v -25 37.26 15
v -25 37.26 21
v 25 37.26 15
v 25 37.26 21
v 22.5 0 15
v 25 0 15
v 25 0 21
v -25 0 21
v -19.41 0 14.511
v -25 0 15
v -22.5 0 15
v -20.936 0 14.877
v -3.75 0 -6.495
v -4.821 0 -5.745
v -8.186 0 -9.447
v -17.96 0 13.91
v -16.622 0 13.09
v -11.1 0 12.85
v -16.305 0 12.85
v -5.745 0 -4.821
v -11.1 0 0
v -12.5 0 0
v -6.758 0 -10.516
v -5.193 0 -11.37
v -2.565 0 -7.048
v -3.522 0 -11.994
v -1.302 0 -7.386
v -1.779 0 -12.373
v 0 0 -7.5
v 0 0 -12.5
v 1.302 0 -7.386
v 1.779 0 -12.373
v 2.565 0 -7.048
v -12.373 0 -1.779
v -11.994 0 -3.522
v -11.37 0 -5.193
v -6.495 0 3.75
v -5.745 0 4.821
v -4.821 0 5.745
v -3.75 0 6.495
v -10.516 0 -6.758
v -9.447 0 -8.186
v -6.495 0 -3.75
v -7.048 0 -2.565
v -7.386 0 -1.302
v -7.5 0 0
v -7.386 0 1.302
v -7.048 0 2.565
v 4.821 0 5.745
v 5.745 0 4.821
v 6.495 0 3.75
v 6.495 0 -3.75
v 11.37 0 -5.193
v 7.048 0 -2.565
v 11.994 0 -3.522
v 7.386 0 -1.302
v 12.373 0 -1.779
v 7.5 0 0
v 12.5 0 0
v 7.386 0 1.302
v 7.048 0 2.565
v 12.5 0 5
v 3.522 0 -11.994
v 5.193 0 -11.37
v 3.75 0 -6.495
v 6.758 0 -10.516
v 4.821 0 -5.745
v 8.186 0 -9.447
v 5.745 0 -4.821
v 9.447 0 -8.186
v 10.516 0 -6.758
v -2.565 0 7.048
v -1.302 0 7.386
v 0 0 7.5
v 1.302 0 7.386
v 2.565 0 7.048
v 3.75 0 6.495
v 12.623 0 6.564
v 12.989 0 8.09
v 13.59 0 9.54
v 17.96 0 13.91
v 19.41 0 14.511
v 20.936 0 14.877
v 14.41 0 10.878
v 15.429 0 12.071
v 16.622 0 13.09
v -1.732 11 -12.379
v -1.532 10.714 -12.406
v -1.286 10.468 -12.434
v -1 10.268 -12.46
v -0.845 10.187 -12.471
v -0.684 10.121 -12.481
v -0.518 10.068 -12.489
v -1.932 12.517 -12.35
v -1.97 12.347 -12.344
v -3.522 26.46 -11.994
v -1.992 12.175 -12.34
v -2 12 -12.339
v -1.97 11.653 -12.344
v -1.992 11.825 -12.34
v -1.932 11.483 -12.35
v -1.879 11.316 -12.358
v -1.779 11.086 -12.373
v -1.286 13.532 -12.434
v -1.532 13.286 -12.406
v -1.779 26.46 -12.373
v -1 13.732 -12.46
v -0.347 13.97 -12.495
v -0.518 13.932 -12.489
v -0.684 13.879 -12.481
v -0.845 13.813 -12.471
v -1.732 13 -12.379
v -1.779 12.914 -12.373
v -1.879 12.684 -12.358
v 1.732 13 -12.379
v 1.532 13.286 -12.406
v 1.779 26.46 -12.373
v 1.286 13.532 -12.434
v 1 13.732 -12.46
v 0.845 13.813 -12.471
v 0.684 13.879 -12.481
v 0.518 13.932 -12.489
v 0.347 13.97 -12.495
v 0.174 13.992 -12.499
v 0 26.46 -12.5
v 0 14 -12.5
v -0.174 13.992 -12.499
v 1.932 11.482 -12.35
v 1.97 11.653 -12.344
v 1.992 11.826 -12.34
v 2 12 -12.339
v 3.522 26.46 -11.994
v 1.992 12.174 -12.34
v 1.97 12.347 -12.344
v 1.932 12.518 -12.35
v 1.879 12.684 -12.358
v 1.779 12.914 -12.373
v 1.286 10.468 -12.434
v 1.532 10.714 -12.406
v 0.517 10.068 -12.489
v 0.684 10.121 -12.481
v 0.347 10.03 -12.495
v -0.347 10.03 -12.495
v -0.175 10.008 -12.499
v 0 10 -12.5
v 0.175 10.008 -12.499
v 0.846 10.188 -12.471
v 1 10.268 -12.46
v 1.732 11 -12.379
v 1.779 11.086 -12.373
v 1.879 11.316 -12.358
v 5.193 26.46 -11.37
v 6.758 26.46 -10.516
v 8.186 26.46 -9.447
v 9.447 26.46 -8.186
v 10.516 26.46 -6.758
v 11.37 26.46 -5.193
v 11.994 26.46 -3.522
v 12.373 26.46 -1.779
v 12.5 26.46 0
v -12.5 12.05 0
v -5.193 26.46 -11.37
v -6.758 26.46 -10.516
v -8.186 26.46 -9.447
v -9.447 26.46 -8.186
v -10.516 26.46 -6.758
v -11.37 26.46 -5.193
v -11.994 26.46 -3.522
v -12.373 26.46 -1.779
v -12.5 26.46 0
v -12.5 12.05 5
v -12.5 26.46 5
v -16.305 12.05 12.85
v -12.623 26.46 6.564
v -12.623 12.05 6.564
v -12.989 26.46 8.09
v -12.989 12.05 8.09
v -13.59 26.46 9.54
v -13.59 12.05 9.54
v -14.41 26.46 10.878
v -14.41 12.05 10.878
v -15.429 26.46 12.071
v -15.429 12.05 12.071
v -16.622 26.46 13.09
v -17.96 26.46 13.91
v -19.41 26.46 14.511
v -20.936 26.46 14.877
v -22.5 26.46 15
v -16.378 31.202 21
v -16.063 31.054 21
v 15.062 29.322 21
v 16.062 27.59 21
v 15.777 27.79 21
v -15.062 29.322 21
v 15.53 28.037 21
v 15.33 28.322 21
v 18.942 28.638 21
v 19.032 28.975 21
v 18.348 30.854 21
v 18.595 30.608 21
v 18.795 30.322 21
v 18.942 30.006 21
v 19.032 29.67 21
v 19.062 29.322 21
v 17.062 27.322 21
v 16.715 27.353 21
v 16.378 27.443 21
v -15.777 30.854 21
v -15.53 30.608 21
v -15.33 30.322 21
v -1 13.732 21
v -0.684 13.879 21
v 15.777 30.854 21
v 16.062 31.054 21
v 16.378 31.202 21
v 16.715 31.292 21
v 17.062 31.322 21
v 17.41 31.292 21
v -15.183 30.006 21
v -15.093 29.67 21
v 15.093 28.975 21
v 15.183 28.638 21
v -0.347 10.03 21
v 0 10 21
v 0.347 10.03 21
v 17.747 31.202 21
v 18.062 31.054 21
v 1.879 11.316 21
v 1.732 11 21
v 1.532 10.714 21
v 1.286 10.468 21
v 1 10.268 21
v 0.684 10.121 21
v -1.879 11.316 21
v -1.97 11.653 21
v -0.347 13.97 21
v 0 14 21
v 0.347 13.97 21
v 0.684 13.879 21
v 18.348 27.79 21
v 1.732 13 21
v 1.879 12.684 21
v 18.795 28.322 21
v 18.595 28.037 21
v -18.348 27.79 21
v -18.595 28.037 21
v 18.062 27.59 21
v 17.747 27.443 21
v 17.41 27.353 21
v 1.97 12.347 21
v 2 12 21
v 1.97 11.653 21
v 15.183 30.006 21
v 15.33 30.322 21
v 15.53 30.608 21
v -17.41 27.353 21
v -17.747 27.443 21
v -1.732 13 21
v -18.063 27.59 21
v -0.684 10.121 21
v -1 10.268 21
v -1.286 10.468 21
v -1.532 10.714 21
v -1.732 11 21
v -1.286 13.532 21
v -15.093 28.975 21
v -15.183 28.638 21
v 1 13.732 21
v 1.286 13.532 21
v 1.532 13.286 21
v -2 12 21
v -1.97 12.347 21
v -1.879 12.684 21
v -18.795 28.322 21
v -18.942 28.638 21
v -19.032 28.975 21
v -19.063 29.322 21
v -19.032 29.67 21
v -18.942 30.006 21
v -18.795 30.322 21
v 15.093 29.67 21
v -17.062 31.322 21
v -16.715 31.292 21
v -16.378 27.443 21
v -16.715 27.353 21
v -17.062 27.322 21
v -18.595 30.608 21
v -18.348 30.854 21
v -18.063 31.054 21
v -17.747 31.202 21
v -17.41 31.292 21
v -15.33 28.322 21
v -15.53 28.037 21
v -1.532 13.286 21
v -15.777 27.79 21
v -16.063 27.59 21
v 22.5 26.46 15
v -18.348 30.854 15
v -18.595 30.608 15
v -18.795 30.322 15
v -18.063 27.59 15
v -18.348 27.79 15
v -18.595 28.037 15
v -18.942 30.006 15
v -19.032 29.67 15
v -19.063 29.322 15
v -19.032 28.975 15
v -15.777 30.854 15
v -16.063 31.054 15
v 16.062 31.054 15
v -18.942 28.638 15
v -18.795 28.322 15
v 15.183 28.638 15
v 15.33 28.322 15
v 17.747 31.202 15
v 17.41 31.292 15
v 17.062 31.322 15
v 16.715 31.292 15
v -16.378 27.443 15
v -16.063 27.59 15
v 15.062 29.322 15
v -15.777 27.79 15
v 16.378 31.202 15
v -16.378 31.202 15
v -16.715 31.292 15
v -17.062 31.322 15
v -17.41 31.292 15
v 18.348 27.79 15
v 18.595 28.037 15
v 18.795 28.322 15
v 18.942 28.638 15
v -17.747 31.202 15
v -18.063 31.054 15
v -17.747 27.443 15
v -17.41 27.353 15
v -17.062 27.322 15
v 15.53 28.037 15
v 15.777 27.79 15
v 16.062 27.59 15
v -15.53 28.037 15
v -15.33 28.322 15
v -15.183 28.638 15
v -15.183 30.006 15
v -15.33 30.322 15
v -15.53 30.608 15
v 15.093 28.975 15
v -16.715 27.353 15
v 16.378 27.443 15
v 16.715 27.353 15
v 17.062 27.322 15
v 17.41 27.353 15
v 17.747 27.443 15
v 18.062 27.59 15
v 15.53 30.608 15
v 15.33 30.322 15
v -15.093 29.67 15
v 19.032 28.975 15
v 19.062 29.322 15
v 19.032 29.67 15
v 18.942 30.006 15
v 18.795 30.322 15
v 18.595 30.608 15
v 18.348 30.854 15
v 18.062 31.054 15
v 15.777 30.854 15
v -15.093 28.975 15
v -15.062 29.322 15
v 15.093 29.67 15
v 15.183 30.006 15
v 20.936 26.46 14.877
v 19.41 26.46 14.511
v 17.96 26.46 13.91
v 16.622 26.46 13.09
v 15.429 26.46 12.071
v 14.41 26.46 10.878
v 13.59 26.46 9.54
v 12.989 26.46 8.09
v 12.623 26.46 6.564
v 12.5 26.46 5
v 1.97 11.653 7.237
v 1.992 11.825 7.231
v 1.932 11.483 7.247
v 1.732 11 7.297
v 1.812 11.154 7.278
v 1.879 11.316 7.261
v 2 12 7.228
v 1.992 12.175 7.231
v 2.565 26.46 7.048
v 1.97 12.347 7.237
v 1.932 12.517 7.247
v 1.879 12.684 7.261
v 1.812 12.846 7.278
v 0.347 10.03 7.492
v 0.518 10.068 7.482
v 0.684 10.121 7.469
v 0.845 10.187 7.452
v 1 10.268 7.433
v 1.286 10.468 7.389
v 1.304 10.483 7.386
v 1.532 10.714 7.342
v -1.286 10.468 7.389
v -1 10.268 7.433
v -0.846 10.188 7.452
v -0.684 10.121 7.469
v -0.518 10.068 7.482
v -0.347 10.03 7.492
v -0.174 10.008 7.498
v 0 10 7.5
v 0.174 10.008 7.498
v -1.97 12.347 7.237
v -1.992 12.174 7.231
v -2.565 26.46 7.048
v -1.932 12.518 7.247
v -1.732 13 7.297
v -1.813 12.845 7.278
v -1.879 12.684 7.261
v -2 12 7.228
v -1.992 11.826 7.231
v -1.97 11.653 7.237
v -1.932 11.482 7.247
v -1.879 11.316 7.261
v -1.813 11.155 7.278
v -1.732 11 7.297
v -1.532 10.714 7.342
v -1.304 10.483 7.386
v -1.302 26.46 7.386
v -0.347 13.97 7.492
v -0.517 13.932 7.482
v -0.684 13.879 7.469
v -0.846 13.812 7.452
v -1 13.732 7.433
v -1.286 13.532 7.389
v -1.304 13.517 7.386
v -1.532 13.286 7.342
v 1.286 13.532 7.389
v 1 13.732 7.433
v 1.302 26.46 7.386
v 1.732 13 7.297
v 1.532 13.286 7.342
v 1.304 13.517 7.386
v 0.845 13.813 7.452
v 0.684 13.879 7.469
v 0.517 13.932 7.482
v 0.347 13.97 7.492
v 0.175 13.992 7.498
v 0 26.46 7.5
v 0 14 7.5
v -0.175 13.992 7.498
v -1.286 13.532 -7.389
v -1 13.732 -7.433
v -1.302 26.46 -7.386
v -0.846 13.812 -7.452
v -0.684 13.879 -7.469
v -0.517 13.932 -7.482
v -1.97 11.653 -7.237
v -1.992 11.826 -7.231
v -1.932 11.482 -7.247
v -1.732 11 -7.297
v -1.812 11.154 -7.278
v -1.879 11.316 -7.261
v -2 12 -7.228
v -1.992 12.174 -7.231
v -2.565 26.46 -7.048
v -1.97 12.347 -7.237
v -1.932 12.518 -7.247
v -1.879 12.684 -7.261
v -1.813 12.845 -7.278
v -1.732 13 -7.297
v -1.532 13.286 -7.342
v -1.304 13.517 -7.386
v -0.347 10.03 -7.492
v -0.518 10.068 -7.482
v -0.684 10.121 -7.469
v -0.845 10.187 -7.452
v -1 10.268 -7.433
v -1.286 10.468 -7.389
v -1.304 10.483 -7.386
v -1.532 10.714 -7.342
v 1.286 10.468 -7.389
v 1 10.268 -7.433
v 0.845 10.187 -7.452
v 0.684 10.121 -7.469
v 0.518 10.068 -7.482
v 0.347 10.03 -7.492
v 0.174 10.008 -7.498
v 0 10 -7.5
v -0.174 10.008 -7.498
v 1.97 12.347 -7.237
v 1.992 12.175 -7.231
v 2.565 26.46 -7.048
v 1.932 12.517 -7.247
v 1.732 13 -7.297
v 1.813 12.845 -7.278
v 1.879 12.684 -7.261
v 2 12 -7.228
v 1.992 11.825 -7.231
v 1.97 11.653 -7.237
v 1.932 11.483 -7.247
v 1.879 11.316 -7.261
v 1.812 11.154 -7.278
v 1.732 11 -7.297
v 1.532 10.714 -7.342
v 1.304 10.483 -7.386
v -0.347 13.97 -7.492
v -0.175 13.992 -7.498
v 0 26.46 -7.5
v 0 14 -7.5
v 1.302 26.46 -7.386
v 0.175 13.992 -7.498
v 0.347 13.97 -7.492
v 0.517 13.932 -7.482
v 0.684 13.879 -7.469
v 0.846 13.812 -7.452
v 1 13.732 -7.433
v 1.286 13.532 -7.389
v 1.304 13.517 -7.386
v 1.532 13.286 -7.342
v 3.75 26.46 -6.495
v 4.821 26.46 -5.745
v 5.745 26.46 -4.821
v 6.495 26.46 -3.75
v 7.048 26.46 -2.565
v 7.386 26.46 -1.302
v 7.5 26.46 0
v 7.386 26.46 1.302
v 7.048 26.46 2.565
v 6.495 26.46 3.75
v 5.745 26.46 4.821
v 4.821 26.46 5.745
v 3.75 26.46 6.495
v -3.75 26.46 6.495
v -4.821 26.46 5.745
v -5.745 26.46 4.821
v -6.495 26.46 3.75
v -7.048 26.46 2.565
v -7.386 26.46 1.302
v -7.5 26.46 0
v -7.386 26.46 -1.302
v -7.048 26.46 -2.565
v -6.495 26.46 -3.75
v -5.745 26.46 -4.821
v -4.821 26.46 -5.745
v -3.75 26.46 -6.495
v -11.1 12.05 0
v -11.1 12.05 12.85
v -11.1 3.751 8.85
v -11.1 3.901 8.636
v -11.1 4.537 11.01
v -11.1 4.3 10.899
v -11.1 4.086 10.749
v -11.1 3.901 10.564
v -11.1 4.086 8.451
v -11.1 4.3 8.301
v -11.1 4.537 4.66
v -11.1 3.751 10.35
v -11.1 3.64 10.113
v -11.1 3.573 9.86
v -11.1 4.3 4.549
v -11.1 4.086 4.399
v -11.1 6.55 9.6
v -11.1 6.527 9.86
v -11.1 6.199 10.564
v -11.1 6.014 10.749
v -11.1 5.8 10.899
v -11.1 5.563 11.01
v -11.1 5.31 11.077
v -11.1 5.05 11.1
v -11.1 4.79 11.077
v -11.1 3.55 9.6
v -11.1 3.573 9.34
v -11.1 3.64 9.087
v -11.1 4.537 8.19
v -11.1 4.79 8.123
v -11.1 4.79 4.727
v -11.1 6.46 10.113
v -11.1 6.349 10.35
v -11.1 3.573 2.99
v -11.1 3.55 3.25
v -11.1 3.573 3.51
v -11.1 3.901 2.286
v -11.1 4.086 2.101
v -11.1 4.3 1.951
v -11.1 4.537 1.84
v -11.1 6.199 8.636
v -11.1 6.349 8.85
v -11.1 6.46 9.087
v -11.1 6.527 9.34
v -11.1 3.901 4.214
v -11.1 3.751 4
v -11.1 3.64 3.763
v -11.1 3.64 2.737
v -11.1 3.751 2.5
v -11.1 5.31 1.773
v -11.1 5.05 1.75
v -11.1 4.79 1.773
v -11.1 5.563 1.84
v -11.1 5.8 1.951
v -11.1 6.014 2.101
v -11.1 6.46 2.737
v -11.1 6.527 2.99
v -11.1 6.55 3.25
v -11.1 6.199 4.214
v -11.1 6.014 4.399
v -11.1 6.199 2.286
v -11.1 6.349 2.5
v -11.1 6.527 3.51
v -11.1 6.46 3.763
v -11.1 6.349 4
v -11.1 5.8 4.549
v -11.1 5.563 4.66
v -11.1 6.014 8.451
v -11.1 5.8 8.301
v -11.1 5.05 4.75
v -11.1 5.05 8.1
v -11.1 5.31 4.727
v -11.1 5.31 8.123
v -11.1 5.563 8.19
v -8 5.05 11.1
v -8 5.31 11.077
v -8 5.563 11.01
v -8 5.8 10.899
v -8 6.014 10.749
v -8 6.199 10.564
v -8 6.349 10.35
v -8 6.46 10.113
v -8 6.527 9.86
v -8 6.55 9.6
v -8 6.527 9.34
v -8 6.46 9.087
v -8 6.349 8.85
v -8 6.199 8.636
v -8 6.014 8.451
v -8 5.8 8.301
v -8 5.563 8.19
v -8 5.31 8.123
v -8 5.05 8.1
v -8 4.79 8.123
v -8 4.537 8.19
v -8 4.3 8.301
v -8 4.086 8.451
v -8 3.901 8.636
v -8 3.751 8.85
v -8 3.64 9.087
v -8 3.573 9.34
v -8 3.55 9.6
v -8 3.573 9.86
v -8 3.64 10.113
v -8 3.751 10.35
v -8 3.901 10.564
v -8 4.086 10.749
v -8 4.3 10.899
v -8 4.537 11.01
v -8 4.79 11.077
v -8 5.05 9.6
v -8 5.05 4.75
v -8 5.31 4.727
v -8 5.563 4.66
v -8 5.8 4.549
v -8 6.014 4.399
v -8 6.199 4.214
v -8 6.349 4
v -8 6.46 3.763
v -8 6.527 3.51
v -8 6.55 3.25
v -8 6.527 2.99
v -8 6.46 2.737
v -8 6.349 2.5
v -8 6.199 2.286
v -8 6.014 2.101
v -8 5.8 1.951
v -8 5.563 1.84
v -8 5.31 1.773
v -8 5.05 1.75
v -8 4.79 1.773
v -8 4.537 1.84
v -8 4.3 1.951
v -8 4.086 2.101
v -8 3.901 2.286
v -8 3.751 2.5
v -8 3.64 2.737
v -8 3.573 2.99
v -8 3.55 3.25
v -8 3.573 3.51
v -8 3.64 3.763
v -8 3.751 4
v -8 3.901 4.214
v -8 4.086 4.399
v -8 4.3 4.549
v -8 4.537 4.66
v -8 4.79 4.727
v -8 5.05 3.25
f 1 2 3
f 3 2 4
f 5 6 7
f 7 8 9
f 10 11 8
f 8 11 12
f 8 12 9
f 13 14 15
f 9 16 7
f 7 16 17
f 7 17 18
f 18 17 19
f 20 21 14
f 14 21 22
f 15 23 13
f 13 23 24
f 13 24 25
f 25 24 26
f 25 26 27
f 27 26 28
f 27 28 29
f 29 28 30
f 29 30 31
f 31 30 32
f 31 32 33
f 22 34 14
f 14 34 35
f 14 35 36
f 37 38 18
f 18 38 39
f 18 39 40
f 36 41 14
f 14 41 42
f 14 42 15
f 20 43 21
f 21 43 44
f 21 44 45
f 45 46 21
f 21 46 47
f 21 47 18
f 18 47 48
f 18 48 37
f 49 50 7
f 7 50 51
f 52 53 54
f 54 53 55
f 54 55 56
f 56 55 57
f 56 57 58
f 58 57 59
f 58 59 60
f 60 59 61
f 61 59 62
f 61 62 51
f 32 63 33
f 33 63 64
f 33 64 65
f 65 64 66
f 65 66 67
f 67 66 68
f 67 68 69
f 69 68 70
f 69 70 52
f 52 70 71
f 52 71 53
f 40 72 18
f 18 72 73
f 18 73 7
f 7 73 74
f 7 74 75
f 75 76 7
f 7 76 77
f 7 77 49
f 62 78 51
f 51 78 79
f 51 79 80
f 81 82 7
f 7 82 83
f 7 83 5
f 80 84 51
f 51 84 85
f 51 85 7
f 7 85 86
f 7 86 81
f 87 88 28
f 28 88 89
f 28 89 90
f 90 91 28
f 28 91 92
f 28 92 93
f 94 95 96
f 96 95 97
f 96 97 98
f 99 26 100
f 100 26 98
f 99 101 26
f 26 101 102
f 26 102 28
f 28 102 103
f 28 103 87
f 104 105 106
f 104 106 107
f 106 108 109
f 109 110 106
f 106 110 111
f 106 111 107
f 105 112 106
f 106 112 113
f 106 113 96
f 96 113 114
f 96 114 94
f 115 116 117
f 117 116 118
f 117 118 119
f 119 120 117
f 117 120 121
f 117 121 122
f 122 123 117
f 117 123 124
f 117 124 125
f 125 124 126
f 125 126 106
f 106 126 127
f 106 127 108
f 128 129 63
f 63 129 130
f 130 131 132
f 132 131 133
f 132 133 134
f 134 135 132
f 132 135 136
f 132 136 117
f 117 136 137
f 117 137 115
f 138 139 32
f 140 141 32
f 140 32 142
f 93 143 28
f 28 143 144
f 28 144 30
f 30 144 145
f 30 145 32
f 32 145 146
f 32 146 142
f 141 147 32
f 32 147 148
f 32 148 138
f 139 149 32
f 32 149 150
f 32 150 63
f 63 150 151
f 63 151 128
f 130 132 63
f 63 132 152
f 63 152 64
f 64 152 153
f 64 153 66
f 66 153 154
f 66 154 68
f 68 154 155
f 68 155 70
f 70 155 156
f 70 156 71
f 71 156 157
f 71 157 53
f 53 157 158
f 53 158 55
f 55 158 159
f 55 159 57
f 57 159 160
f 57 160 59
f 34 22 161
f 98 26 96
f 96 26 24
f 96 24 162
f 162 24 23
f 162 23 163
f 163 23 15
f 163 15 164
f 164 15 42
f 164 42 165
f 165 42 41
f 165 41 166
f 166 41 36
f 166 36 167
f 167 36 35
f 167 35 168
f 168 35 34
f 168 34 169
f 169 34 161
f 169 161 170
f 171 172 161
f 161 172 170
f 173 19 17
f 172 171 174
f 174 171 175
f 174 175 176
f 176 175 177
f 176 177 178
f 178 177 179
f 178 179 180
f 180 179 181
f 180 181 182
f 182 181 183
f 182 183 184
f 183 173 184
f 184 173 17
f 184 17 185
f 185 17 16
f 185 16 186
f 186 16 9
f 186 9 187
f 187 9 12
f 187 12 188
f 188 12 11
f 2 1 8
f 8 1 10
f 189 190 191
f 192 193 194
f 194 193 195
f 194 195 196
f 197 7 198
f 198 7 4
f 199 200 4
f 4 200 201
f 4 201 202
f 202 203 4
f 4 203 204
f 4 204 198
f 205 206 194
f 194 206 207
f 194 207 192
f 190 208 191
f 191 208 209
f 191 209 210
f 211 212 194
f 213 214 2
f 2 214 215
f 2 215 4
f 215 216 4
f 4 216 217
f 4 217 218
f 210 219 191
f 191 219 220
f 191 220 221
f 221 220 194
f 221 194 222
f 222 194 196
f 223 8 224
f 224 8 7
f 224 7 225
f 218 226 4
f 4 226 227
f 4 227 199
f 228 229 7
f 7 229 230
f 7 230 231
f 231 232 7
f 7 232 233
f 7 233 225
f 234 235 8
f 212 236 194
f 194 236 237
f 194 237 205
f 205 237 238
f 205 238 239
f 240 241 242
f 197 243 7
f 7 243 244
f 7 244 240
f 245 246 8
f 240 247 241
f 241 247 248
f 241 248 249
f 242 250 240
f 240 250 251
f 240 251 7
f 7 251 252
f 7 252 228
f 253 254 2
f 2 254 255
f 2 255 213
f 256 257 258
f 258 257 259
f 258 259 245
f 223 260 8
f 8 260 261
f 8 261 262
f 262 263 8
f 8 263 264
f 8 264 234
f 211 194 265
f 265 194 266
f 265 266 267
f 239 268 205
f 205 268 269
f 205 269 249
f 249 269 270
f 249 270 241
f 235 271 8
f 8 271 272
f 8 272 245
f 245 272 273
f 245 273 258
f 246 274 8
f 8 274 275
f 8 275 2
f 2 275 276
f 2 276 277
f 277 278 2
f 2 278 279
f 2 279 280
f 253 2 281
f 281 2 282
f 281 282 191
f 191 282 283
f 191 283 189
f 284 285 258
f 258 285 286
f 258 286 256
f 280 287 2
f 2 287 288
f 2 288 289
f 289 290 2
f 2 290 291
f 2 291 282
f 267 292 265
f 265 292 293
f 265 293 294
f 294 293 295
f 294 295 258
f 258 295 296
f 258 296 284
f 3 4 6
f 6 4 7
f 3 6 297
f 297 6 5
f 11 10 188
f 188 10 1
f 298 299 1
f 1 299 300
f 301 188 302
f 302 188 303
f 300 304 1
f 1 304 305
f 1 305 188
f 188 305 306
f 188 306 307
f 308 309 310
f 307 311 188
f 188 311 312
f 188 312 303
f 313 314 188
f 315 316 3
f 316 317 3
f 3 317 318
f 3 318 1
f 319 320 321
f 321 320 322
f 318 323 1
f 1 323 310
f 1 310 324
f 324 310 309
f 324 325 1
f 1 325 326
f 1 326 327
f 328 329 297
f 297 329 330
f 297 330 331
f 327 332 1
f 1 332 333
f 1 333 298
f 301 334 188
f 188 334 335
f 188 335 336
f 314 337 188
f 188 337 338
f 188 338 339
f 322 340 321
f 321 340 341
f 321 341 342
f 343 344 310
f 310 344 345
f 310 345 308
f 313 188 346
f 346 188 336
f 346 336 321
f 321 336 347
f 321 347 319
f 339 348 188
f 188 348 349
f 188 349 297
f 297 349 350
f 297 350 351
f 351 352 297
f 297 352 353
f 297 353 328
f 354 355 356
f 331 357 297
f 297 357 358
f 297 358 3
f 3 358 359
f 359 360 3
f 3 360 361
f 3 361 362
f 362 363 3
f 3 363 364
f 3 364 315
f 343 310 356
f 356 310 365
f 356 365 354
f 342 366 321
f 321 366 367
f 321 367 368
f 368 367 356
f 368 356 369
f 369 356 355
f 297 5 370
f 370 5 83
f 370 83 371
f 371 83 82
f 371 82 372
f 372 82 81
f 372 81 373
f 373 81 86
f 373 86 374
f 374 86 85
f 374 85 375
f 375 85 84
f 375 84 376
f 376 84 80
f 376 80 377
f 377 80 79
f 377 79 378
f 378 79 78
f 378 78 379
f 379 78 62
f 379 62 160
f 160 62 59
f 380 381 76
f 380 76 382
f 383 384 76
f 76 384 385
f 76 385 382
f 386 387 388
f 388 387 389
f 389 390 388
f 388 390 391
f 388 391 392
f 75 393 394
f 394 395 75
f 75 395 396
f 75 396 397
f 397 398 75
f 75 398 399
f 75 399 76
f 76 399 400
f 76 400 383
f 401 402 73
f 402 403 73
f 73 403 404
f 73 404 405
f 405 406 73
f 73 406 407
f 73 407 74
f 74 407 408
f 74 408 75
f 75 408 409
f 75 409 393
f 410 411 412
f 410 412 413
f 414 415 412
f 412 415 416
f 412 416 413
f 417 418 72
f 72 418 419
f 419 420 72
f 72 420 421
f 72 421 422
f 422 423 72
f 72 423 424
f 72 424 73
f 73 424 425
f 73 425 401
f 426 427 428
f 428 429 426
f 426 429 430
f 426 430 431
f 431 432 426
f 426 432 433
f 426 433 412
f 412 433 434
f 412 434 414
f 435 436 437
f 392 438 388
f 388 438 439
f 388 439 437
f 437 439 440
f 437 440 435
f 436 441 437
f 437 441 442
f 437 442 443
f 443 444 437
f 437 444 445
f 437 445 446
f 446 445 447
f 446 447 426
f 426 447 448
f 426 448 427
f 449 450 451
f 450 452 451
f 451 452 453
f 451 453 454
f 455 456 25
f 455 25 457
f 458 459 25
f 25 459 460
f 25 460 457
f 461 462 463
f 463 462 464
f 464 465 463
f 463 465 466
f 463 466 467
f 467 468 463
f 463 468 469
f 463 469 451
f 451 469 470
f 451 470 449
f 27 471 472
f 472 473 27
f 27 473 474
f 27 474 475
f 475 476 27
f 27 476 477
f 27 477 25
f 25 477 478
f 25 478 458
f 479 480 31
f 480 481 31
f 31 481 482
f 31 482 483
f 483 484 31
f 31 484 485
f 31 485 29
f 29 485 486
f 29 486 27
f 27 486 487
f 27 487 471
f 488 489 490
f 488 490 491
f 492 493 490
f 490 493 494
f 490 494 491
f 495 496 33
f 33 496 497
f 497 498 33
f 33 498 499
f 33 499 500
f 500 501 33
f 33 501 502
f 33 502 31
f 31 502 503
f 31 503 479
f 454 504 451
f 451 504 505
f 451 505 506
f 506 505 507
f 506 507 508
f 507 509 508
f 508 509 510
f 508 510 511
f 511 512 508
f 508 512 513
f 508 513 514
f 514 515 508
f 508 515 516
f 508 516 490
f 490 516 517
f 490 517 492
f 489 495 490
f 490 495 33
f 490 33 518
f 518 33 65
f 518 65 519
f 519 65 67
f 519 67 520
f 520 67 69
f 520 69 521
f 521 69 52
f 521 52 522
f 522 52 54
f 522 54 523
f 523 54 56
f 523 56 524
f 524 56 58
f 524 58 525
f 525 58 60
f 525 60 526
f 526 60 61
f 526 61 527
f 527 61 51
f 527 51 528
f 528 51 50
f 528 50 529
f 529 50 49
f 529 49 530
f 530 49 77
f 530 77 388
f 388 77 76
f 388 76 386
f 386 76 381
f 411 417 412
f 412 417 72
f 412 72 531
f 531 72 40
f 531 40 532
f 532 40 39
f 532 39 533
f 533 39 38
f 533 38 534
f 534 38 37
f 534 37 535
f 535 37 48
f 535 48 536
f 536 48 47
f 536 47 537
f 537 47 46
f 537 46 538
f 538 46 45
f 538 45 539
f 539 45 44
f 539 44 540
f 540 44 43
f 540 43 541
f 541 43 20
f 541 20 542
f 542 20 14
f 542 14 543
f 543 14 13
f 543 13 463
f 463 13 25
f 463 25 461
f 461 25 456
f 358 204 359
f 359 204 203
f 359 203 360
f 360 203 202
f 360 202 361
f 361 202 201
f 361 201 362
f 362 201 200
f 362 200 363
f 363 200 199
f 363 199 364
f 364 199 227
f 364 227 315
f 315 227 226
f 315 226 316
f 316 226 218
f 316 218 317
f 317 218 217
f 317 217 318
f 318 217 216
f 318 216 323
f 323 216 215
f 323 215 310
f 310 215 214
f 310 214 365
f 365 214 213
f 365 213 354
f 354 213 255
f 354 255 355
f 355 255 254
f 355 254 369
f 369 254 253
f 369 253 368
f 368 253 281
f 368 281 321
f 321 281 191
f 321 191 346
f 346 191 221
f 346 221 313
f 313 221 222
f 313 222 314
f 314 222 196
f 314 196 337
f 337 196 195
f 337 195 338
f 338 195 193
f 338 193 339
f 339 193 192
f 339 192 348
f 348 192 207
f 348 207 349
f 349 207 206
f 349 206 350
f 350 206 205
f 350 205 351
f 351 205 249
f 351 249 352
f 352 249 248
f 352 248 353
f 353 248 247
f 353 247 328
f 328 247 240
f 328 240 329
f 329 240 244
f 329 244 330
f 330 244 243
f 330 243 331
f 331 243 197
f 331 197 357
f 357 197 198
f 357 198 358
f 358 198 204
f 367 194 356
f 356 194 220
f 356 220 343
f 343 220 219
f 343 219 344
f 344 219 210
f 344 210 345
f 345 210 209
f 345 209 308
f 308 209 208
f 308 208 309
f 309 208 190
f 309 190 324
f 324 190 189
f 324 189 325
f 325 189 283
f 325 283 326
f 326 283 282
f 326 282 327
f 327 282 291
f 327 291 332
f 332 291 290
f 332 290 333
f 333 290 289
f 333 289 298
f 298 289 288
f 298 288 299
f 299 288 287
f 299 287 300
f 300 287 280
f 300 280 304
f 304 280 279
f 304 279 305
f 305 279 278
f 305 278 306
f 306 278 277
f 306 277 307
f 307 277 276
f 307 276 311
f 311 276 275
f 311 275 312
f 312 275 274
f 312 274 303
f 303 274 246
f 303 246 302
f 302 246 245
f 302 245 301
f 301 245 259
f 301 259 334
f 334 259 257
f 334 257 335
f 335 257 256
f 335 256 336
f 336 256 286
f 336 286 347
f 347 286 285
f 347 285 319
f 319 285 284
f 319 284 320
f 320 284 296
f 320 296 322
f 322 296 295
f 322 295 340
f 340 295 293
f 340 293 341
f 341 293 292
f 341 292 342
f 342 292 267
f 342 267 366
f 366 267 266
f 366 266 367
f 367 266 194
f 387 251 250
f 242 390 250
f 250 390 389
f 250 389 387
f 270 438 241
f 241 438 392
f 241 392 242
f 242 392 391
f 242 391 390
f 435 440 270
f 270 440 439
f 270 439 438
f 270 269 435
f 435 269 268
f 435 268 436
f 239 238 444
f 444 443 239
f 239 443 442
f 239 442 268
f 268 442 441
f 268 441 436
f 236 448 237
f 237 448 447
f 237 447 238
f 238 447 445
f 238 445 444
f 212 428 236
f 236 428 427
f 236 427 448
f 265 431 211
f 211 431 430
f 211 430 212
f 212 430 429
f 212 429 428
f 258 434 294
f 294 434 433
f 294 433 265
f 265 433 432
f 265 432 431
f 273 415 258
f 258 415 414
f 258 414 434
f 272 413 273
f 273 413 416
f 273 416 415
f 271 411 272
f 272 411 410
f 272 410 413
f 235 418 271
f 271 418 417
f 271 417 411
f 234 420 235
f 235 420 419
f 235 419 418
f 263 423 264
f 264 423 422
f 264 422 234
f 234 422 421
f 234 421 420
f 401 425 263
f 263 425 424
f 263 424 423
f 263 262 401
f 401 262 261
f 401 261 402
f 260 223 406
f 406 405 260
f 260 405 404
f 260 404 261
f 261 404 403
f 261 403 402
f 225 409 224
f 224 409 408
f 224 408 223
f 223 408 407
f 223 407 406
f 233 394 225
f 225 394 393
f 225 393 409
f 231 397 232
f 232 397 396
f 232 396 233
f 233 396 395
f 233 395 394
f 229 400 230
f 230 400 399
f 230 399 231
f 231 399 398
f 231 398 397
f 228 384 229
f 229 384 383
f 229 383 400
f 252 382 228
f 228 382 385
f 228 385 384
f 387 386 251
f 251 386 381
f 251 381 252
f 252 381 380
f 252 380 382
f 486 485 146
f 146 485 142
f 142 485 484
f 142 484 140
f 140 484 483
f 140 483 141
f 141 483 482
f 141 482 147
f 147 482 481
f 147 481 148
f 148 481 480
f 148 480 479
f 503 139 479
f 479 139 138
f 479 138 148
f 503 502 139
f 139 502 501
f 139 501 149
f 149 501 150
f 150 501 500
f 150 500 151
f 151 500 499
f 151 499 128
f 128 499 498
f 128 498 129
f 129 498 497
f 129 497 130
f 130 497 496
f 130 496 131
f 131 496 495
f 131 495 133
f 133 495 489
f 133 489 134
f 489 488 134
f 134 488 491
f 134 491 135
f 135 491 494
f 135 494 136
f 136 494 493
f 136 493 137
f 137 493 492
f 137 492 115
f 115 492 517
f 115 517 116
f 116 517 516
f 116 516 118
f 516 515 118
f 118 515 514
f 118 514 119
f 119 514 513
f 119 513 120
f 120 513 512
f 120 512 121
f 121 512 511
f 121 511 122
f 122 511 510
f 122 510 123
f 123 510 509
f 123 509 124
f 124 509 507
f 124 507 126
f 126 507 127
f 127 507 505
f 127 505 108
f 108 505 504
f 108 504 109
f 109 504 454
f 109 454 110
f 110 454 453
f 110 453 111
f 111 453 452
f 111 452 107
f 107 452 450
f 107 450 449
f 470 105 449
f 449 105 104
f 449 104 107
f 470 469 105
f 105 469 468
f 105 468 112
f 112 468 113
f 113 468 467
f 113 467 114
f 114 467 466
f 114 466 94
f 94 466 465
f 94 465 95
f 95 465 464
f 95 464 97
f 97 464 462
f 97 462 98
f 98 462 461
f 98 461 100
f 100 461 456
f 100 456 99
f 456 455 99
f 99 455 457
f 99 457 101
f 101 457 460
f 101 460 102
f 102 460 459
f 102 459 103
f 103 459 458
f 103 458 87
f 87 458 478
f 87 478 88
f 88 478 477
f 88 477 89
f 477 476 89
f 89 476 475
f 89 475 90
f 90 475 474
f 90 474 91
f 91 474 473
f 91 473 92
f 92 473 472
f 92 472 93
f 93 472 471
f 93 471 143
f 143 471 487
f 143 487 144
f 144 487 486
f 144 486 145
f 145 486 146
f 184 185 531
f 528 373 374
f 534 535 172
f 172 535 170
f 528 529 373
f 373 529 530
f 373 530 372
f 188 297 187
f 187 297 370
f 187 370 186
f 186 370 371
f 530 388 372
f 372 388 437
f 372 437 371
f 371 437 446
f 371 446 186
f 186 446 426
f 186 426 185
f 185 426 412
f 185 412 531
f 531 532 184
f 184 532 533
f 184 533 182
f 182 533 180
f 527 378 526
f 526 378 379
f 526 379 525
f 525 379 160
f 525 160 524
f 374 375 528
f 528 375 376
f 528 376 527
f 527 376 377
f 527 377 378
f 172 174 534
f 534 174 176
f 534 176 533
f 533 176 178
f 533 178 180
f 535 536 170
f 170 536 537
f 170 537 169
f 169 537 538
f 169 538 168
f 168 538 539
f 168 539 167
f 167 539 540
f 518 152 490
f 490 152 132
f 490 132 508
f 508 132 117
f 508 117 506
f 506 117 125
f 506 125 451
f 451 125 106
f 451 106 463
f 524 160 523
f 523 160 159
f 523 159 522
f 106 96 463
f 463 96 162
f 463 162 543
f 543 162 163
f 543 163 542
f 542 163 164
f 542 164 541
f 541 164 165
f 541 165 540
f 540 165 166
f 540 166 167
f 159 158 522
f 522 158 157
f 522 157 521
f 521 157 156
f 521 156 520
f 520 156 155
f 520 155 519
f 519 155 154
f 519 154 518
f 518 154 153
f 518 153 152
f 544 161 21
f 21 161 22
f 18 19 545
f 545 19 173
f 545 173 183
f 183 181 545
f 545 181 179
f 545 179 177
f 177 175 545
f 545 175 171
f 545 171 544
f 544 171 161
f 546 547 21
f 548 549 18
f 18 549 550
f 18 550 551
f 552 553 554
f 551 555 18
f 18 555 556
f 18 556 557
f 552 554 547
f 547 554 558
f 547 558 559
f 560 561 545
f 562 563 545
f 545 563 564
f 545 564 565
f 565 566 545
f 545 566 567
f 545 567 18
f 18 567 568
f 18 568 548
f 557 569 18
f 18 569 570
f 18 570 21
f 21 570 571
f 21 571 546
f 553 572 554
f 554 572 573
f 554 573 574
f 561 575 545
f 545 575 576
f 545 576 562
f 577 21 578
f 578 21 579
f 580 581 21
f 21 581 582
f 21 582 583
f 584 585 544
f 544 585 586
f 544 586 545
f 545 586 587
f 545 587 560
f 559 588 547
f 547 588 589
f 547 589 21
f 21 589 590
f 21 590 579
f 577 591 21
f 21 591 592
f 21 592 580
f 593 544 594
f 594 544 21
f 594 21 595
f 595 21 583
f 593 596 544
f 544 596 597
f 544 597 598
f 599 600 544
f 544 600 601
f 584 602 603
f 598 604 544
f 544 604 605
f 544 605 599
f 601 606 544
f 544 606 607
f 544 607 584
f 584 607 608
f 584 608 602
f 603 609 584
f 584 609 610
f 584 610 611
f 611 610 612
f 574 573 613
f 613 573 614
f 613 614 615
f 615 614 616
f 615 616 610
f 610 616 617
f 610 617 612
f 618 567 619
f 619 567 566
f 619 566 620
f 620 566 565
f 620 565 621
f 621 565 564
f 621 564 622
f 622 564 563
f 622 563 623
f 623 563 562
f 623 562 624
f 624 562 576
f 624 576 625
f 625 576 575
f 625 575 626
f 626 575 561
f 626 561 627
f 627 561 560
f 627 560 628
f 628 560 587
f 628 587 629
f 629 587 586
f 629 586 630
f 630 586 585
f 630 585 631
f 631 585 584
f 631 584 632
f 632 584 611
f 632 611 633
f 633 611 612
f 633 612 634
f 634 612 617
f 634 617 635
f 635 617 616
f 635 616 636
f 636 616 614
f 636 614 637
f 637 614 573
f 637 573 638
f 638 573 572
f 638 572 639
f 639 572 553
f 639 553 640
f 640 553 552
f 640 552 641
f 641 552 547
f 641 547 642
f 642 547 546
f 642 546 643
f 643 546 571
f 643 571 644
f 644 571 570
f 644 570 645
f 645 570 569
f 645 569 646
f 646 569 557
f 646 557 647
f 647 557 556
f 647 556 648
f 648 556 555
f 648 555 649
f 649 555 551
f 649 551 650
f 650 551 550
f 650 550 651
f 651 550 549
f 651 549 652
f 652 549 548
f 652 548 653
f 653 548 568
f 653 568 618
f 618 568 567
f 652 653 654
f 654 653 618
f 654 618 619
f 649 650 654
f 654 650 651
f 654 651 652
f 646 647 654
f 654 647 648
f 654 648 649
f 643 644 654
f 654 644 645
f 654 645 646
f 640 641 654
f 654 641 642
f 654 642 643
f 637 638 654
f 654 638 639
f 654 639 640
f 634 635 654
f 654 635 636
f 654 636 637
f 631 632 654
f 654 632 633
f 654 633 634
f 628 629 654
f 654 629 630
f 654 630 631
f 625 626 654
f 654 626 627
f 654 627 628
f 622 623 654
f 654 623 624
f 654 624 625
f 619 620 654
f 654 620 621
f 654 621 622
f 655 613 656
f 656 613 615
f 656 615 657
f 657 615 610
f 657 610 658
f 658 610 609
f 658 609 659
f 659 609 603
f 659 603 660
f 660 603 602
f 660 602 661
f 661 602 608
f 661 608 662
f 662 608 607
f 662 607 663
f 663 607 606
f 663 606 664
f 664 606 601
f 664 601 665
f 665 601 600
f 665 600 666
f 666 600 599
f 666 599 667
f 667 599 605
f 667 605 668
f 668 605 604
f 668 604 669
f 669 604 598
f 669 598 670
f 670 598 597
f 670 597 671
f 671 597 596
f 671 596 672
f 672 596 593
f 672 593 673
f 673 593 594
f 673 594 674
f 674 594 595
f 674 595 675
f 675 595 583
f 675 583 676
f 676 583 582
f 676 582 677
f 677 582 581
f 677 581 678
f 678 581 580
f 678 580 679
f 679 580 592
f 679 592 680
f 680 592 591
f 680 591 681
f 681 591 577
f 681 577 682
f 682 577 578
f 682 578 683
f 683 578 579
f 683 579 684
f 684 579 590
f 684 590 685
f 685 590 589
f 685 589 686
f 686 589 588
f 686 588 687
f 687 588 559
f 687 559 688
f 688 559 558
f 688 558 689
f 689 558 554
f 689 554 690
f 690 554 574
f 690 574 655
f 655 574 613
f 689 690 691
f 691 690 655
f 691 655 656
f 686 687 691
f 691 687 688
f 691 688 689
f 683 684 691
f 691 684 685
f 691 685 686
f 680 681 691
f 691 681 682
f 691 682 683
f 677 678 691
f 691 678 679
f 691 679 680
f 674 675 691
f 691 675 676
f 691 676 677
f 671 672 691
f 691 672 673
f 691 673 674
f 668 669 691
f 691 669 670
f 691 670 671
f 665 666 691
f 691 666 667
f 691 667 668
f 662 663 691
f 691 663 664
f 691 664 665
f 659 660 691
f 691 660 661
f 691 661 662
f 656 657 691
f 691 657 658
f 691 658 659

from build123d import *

# Parameters (mm, degrees)
PROFILE_SKETCH1_R                          = 7.5
PROFILE_BOSS_EXTRUDE2_DEPTH                = 37.25987
FASTENINGHOLESKETCH3_R                     = 2
FASTENINGHOLECUT_EXTRUDE8_DEPTH            = 56.995963358
LM8UUFASTENINGHOLESKETCH5_R                = 2
LM8UUFASTENINGHOLECUT_EXTRUDE9_DEPTH       = 56.995963425
TOPKNOTCHSKETCH2_W                         = 50
TOPKNOTCHSKETCH2_H                         = 27.5
TOPKNOTCHCUT_EXTRUDE1_DEPTH                = 10.8
RIGHTZAXISMICROSWITCHCUT_EXTRUDE1_DEPTH    = 12.05
MICROSWITCHMOUNTINGHOLESSKETCH1_R          = 1.5
MICROSWITCHMOUNTINGHOLESCUT_EXTRUDE1_DEPTH = 3.1


with BuildPart() as part:
    # Profile-Sketch1 → Profile-Boss-Extrude2 (new body)
    with BuildSketch(Plane(origin=(0, 0, 0), x_dir=(1, 0, 0), z_dir=(0, 1, 0))):
        with BuildLine():
            Line((-25, -21), (25, -21))
            Line((25, -21), (25, -15))
            Line((25, -15), (22.5, -15))
            ThreePointArc((22.5, -15), (15.428932188, -12.071067812), (12.5, -5))
            Line((12.5, -5), (12.5, 0))
            ThreePointArc((12.5, 0), (0, 12.5), (-12.5, 0))
            Line((-12.5, 0), (-12.5, -5))
            ThreePointArc((-12.5, -5), (-15.428932188, -12.071067812), (-22.5, -15))
            Line((-22.5, -15), (-25, -15))
            Line((-25, -15), (-25, -21))
        make_face()
        with Locations(Location((0, 0, 0), (0, 0, 270))):
            Circle(PROFILE_SKETCH1_R, mode=Mode.SUBTRACT)
    extrude(amount=PROFILE_BOSS_EXTRUDE2_DEPTH)

    # FasteningHoleSketch3 → FasteningHoleCut-Extrude8 (cut, through all)
    with BuildSketch(Plane.XY.offset(21)):
        with Locations((-17.0625, 29.32237)):
            Circle(FASTENINGHOLESKETCH3_R)
        with Locations((17.0625, 29.32237)):
            Circle(FASTENINGHOLESKETCH3_R)
    extrude(amount=-FASTENINGHOLECUT_EXTRUDE8_DEPTH, mode=Mode.SUBTRACT)

    # LM8UUFasteningHoleSketch5 → LM8UUFasteningHoleCut-Extrude9 (cut, through all)
    with BuildSketch(Plane.XY.offset(21)):
        with Locations((0, 12)):
            Circle(LM8UUFASTENINGHOLESKETCH5_R)
    extrude(amount=-LM8UUFASTENINGHOLECUT_EXTRUDE9_DEPTH, mode=Mode.SUBTRACT)

    # TopKnotchSketch2 → TopKnotchCut-Extrude1 (cut)
    with BuildSketch(Plane(origin=(0, 37.25987, 0), x_dir=(1, 0, 0), z_dir=(0, 1, 0))):
        with Locations((0, -1.25)):
            Rectangle(TOPKNOTCHSKETCH2_W, TOPKNOTCHSKETCH2_H)
    extrude(amount=-TOPKNOTCHCUT_EXTRUDE1_DEPTH, mode=Mode.SUBTRACT)

    # RightZAxisMicroSwitchSketch2 → RightZAxisMicroSwitchCut-Extrude1 (cut)
    with BuildSketch(Plane.XZ):
        Polygon((-11.1, 0), (-13.9, 0), (-13.9, 10.086005596), (-16.342618224, 12.85), (-13.9, 12.85), (-11.1, 12.85), align=None)
    extrude(amount=-RIGHTZAXISMICROSWITCHCUT_EXTRUDE1_DEPTH, mode=Mode.SUBTRACT)

    # MicroSwitchMountingHolesSketch1 → MicroSwitchMountingHolesCut-Extrude1 (cut)
    with BuildSketch(Plane.ZY.offset(11.1)):
        with Locations((3.25, 5.05)):
            Circle(MICROSWITCHMOUNTINGHOLESSKETCH1_R)
        with Locations((9.6, 5.05)):
            Circle(MICROSWITCHMOUNTINGHOLESSKETCH1_R)
    extrude(amount=-MICROSWITCHMOUNTINGHOLESCUT_EXTRUDE1_DEPTH, mode=Mode.SUBTRACT)


solid = part.part
